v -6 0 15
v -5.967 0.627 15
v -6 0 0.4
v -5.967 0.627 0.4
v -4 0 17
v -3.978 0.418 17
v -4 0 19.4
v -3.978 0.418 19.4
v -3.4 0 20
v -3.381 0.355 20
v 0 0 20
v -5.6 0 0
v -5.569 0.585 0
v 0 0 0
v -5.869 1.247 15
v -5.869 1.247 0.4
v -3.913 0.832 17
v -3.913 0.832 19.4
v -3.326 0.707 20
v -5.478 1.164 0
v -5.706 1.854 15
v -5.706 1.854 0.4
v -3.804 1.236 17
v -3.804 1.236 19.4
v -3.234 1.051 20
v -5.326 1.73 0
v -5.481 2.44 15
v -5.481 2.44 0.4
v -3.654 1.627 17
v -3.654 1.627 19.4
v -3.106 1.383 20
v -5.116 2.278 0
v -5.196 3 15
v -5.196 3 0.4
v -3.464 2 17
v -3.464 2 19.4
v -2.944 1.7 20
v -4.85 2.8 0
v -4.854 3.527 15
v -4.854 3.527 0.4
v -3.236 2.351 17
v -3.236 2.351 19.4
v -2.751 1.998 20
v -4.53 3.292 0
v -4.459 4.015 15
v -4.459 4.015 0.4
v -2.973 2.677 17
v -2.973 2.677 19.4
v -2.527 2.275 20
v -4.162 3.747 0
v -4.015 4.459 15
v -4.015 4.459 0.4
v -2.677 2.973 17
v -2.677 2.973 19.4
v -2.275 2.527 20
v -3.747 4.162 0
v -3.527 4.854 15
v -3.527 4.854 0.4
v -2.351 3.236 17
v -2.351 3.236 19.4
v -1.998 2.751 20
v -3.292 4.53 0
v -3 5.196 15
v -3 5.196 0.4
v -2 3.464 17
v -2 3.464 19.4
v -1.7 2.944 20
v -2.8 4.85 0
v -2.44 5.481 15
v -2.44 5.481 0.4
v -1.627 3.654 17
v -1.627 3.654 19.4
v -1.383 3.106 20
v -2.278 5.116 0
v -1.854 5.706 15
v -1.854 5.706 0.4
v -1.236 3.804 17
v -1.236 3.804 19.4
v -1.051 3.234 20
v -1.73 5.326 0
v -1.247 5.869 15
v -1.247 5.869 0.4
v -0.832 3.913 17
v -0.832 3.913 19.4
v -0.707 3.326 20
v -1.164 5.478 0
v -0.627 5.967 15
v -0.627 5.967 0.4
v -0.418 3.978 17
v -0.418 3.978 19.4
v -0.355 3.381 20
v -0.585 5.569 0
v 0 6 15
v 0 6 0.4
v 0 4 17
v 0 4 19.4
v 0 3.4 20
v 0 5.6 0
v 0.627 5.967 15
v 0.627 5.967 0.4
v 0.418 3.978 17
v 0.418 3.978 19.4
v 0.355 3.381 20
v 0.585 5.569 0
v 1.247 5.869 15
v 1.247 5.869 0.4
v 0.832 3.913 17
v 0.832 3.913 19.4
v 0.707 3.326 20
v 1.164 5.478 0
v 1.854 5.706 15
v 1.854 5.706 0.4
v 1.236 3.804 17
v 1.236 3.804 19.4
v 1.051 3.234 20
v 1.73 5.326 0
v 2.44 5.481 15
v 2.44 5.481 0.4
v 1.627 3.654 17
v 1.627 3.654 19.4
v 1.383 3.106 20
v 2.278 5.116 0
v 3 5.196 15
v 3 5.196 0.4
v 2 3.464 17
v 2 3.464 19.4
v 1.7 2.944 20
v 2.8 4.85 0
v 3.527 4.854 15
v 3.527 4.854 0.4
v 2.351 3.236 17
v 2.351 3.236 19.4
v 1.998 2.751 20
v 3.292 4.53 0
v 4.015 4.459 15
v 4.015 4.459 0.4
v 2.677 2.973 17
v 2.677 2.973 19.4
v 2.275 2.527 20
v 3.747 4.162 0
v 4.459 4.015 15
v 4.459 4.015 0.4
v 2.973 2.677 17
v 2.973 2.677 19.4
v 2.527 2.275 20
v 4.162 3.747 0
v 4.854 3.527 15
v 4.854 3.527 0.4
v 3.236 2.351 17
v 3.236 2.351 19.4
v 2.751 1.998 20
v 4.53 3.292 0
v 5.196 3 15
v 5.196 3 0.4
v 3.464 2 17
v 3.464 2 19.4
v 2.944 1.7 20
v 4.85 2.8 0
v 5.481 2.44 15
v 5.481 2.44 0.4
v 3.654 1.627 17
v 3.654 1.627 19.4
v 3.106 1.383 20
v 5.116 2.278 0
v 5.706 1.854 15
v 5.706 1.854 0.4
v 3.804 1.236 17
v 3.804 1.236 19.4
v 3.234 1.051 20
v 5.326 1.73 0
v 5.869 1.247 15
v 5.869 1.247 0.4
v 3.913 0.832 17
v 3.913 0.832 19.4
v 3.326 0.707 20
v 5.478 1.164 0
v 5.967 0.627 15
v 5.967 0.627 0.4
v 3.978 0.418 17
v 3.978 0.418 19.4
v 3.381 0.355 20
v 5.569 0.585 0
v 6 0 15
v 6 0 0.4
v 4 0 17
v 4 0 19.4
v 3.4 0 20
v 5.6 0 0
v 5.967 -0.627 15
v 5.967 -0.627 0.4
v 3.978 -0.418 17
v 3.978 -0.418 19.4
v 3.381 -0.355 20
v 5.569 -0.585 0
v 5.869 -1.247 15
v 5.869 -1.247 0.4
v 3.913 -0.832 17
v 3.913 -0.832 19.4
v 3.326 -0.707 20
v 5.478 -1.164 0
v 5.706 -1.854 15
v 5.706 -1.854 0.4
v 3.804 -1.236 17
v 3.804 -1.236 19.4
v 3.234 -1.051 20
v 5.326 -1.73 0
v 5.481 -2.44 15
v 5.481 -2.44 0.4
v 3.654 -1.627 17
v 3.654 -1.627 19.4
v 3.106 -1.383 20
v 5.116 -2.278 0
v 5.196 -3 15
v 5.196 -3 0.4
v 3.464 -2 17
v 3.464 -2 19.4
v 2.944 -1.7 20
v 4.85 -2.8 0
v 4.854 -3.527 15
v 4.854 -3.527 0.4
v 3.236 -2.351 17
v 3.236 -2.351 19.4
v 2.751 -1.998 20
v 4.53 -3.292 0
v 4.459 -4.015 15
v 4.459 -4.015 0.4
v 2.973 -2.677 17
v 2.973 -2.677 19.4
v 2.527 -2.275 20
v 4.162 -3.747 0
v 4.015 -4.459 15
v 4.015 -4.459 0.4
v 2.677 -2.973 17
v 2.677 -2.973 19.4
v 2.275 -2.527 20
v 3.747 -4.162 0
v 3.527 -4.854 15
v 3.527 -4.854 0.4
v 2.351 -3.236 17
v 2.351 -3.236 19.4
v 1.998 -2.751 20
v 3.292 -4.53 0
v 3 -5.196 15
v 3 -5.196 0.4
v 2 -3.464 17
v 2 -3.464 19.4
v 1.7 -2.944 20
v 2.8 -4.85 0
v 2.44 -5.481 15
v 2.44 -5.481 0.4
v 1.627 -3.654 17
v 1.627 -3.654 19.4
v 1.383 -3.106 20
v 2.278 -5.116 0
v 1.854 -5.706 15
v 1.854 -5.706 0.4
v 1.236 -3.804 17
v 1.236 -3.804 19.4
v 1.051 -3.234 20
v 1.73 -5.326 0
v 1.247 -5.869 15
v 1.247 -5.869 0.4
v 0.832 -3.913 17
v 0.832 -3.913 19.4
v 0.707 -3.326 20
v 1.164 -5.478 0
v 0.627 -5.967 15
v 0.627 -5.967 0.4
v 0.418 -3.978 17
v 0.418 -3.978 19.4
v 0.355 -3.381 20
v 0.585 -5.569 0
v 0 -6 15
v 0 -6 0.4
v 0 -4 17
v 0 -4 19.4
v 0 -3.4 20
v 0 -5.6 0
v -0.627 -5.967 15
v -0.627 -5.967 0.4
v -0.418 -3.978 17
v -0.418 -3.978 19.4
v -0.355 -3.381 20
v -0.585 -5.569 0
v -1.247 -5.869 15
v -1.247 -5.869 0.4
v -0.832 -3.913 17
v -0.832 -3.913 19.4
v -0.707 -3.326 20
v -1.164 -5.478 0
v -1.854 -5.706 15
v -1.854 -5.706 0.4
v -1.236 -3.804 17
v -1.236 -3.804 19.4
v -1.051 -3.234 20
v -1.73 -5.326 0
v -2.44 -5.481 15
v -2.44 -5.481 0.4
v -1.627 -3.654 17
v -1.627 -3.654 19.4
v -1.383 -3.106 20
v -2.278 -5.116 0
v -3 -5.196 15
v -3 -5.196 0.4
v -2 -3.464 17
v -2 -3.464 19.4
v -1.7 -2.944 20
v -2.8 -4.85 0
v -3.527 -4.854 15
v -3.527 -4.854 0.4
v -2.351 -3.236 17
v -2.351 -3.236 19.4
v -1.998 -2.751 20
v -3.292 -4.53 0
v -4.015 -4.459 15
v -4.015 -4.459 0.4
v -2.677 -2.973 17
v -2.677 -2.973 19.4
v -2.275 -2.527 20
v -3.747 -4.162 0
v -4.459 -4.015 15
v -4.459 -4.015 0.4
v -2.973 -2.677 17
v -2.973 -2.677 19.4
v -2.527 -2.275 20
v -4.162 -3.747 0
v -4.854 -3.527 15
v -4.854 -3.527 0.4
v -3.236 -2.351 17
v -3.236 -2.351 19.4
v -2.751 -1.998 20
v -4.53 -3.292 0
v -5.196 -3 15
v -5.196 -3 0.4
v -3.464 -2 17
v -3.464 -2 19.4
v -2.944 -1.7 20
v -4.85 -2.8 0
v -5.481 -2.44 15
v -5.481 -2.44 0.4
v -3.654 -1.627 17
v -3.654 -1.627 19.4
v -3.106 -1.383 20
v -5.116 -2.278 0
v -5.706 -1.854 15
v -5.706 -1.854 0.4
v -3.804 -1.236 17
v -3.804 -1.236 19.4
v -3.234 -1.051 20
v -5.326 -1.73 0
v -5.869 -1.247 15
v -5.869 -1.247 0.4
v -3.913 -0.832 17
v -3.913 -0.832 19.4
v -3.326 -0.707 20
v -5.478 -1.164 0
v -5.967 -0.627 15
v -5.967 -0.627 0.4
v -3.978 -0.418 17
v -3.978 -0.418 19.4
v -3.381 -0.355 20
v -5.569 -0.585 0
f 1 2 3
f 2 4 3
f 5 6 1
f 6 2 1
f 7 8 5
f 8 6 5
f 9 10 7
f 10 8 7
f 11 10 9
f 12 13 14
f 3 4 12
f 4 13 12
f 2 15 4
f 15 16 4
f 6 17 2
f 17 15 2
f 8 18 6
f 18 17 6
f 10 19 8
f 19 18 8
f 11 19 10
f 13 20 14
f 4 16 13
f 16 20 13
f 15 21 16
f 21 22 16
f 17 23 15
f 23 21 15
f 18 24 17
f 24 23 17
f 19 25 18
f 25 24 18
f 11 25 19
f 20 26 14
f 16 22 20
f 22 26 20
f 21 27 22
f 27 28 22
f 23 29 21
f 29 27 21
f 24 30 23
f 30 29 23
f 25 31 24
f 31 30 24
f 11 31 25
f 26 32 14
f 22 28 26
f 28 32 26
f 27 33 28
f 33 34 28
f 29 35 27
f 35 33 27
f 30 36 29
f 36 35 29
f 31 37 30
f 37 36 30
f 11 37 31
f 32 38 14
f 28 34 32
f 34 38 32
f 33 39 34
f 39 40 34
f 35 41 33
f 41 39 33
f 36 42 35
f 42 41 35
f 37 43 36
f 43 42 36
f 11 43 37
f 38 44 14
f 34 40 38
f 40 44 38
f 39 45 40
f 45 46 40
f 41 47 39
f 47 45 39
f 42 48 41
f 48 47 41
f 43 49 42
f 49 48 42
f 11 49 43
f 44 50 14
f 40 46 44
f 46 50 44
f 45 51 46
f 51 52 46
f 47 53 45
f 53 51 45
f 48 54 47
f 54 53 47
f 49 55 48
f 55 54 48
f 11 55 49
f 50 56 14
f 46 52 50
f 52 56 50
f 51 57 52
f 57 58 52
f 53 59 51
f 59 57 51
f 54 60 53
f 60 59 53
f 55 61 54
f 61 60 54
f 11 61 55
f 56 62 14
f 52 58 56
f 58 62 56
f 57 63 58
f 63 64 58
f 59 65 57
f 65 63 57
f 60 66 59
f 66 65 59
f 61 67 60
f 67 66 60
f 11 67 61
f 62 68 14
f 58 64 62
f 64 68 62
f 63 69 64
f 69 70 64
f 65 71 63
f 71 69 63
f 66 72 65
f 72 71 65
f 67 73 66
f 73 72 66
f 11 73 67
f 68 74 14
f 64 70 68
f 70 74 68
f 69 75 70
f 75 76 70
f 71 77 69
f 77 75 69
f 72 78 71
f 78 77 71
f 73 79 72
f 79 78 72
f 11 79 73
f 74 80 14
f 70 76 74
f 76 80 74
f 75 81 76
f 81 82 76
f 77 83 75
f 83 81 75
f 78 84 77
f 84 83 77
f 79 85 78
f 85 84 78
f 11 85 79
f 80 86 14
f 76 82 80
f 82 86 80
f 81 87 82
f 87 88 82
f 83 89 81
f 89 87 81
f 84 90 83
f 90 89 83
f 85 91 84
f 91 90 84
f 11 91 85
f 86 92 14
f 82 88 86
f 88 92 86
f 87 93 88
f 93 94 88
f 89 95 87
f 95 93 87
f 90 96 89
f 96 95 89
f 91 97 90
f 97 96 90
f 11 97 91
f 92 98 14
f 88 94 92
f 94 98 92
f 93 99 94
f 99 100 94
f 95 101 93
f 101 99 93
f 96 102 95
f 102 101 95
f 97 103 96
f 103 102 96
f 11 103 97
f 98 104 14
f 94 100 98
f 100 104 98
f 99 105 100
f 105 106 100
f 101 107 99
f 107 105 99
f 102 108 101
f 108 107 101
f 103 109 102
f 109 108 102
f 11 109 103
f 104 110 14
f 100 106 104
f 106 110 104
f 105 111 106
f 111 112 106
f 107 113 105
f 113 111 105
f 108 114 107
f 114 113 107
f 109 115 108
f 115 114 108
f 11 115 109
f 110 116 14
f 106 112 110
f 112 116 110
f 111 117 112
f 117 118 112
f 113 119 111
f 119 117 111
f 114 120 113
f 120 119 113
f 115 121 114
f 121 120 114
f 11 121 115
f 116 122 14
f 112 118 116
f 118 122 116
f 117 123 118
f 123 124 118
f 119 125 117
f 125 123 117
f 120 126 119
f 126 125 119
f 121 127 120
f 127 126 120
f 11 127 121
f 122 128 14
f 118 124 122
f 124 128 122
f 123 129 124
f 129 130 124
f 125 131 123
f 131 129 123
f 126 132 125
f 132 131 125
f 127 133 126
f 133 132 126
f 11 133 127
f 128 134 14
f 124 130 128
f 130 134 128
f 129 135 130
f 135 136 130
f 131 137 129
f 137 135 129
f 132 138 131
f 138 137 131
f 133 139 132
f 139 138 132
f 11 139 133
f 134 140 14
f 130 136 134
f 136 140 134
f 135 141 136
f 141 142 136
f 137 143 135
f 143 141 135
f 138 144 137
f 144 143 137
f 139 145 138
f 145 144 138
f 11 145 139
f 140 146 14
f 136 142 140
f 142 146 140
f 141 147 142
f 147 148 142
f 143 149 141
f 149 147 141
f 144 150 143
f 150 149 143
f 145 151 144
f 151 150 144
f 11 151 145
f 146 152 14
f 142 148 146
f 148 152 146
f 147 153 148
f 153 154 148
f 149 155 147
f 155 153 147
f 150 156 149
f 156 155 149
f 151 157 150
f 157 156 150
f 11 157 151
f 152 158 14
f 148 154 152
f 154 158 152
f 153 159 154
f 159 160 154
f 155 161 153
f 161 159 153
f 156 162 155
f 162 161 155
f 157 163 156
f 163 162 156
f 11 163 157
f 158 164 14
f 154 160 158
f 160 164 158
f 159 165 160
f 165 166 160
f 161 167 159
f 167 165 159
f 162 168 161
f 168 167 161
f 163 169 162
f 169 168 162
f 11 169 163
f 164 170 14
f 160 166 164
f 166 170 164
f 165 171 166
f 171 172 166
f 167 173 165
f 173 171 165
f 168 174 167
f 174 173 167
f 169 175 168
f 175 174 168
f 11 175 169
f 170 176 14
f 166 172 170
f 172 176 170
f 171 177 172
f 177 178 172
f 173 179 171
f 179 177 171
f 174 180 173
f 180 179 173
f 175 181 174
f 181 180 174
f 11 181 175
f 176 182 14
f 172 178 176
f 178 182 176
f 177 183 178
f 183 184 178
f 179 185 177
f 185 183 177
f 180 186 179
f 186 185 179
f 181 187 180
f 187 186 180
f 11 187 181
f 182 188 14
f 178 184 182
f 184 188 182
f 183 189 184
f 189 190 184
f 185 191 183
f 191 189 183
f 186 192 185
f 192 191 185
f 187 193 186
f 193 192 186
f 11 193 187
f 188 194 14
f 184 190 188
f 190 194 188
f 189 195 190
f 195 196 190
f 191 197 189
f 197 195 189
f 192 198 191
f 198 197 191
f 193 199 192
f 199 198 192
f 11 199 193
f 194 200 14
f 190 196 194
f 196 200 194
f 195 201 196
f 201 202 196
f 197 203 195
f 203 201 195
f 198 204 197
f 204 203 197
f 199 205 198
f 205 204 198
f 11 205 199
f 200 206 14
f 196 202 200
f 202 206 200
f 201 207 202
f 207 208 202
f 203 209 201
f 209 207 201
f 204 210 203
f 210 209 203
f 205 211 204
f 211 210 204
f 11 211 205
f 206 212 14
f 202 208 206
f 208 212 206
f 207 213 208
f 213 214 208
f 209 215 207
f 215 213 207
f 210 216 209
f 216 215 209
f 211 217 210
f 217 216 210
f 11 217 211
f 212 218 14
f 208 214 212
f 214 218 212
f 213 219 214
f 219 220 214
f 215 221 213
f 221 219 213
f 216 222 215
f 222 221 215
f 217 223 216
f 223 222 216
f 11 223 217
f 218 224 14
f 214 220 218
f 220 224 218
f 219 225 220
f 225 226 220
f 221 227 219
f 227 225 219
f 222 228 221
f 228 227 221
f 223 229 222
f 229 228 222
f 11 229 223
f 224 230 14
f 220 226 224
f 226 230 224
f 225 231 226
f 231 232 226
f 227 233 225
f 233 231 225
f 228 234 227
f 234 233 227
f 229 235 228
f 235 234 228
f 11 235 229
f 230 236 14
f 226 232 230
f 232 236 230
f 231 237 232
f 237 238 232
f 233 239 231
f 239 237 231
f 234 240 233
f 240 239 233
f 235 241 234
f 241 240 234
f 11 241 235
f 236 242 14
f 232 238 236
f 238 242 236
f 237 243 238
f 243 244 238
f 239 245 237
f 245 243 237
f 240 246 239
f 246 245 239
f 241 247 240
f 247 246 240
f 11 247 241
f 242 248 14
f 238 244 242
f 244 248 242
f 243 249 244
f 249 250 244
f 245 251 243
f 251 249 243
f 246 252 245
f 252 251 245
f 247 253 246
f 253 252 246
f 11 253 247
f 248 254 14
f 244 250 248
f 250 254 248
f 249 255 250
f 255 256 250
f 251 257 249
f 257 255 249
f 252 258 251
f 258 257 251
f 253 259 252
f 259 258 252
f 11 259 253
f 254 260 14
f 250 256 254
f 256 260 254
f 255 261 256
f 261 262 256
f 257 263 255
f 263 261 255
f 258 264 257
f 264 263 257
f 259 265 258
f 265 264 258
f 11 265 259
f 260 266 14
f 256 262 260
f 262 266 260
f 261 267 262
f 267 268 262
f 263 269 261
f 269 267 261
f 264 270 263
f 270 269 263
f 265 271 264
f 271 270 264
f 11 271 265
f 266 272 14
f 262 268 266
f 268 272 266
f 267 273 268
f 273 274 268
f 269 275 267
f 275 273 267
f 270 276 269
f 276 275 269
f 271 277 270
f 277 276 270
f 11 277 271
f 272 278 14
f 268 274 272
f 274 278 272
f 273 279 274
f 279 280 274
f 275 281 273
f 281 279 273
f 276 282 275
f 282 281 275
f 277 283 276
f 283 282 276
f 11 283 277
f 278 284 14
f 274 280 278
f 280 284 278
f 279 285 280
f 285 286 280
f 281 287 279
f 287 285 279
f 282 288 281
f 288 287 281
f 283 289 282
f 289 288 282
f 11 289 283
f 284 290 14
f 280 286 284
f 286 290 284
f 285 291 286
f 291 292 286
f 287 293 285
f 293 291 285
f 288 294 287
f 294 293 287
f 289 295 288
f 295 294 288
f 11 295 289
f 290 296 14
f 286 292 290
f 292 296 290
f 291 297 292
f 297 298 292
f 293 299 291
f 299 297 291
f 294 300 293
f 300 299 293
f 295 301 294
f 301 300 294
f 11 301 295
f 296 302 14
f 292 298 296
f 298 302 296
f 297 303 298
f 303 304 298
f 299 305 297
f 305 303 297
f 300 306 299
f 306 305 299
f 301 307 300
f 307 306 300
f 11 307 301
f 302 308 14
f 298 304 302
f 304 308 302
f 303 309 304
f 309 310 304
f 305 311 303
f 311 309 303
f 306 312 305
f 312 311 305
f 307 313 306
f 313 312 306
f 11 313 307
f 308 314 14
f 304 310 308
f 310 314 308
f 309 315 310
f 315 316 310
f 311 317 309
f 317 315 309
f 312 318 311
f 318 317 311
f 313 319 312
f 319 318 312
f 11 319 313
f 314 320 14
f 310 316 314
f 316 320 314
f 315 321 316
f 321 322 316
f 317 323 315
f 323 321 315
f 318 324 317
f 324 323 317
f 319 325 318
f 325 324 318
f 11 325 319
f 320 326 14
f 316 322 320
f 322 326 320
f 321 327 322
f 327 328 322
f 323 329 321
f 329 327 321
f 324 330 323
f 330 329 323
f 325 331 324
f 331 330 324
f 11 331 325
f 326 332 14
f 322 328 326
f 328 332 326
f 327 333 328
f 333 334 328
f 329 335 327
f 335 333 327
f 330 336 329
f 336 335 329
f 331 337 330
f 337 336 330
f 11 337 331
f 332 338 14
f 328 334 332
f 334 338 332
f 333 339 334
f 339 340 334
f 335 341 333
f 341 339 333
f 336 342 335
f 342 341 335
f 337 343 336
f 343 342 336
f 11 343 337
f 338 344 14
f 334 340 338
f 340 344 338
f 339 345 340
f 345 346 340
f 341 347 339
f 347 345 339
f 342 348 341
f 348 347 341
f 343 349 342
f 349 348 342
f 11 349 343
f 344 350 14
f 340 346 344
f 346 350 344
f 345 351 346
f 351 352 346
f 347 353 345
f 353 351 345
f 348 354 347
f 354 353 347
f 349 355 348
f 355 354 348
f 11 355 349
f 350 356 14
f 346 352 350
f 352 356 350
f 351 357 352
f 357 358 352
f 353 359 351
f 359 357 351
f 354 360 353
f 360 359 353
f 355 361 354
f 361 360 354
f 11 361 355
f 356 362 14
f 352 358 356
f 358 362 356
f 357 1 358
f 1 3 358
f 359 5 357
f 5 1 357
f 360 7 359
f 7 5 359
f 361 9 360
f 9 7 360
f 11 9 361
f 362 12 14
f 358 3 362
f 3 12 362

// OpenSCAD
// antibiotic_vial.scad - antibiotic container (design_brief.md 4.17): a small drug vial standing
// on the table. 30 in five colours, six of each; the colour is the code and the group decides
// what each one means, so the part carries no text. Ø12 x 20 mm: body to 15, 45 deg shoulder to
// a Ø8 crimp cap, 0.4 mm bottom and 0.6 mm top chamfer. Single colour, prints upright.
// Export: openscad -o antibiotic_vial.stl antibiotic_vial.scad
include <common.scad>

diameter    = 12;               // body; at or above the 12 mm handling minimum
height      = 20;
body_h      = 15;               // top of the straight body, where the shoulder starts
cap_d       = 8;
shoulder_h  = (diameter - cap_d) / 2;   // 2, so the shoulder is at 45 deg
top_chamfer = 0.6;

module antibiotic_vial() {
    r = diameter / 2; rc = cap_d / 2; cb = chamfer_bottom;
    band_colour(1) rotate_extrude()
        polygon([[0, 0], [r - cb, 0], [r, cb], [r, body_h], [rc, body_h + shoulder_h],
                 [rc, height - top_chamfer], [rc - top_chamfer, height], [0, height]]);
}

antibiotic_vial();
